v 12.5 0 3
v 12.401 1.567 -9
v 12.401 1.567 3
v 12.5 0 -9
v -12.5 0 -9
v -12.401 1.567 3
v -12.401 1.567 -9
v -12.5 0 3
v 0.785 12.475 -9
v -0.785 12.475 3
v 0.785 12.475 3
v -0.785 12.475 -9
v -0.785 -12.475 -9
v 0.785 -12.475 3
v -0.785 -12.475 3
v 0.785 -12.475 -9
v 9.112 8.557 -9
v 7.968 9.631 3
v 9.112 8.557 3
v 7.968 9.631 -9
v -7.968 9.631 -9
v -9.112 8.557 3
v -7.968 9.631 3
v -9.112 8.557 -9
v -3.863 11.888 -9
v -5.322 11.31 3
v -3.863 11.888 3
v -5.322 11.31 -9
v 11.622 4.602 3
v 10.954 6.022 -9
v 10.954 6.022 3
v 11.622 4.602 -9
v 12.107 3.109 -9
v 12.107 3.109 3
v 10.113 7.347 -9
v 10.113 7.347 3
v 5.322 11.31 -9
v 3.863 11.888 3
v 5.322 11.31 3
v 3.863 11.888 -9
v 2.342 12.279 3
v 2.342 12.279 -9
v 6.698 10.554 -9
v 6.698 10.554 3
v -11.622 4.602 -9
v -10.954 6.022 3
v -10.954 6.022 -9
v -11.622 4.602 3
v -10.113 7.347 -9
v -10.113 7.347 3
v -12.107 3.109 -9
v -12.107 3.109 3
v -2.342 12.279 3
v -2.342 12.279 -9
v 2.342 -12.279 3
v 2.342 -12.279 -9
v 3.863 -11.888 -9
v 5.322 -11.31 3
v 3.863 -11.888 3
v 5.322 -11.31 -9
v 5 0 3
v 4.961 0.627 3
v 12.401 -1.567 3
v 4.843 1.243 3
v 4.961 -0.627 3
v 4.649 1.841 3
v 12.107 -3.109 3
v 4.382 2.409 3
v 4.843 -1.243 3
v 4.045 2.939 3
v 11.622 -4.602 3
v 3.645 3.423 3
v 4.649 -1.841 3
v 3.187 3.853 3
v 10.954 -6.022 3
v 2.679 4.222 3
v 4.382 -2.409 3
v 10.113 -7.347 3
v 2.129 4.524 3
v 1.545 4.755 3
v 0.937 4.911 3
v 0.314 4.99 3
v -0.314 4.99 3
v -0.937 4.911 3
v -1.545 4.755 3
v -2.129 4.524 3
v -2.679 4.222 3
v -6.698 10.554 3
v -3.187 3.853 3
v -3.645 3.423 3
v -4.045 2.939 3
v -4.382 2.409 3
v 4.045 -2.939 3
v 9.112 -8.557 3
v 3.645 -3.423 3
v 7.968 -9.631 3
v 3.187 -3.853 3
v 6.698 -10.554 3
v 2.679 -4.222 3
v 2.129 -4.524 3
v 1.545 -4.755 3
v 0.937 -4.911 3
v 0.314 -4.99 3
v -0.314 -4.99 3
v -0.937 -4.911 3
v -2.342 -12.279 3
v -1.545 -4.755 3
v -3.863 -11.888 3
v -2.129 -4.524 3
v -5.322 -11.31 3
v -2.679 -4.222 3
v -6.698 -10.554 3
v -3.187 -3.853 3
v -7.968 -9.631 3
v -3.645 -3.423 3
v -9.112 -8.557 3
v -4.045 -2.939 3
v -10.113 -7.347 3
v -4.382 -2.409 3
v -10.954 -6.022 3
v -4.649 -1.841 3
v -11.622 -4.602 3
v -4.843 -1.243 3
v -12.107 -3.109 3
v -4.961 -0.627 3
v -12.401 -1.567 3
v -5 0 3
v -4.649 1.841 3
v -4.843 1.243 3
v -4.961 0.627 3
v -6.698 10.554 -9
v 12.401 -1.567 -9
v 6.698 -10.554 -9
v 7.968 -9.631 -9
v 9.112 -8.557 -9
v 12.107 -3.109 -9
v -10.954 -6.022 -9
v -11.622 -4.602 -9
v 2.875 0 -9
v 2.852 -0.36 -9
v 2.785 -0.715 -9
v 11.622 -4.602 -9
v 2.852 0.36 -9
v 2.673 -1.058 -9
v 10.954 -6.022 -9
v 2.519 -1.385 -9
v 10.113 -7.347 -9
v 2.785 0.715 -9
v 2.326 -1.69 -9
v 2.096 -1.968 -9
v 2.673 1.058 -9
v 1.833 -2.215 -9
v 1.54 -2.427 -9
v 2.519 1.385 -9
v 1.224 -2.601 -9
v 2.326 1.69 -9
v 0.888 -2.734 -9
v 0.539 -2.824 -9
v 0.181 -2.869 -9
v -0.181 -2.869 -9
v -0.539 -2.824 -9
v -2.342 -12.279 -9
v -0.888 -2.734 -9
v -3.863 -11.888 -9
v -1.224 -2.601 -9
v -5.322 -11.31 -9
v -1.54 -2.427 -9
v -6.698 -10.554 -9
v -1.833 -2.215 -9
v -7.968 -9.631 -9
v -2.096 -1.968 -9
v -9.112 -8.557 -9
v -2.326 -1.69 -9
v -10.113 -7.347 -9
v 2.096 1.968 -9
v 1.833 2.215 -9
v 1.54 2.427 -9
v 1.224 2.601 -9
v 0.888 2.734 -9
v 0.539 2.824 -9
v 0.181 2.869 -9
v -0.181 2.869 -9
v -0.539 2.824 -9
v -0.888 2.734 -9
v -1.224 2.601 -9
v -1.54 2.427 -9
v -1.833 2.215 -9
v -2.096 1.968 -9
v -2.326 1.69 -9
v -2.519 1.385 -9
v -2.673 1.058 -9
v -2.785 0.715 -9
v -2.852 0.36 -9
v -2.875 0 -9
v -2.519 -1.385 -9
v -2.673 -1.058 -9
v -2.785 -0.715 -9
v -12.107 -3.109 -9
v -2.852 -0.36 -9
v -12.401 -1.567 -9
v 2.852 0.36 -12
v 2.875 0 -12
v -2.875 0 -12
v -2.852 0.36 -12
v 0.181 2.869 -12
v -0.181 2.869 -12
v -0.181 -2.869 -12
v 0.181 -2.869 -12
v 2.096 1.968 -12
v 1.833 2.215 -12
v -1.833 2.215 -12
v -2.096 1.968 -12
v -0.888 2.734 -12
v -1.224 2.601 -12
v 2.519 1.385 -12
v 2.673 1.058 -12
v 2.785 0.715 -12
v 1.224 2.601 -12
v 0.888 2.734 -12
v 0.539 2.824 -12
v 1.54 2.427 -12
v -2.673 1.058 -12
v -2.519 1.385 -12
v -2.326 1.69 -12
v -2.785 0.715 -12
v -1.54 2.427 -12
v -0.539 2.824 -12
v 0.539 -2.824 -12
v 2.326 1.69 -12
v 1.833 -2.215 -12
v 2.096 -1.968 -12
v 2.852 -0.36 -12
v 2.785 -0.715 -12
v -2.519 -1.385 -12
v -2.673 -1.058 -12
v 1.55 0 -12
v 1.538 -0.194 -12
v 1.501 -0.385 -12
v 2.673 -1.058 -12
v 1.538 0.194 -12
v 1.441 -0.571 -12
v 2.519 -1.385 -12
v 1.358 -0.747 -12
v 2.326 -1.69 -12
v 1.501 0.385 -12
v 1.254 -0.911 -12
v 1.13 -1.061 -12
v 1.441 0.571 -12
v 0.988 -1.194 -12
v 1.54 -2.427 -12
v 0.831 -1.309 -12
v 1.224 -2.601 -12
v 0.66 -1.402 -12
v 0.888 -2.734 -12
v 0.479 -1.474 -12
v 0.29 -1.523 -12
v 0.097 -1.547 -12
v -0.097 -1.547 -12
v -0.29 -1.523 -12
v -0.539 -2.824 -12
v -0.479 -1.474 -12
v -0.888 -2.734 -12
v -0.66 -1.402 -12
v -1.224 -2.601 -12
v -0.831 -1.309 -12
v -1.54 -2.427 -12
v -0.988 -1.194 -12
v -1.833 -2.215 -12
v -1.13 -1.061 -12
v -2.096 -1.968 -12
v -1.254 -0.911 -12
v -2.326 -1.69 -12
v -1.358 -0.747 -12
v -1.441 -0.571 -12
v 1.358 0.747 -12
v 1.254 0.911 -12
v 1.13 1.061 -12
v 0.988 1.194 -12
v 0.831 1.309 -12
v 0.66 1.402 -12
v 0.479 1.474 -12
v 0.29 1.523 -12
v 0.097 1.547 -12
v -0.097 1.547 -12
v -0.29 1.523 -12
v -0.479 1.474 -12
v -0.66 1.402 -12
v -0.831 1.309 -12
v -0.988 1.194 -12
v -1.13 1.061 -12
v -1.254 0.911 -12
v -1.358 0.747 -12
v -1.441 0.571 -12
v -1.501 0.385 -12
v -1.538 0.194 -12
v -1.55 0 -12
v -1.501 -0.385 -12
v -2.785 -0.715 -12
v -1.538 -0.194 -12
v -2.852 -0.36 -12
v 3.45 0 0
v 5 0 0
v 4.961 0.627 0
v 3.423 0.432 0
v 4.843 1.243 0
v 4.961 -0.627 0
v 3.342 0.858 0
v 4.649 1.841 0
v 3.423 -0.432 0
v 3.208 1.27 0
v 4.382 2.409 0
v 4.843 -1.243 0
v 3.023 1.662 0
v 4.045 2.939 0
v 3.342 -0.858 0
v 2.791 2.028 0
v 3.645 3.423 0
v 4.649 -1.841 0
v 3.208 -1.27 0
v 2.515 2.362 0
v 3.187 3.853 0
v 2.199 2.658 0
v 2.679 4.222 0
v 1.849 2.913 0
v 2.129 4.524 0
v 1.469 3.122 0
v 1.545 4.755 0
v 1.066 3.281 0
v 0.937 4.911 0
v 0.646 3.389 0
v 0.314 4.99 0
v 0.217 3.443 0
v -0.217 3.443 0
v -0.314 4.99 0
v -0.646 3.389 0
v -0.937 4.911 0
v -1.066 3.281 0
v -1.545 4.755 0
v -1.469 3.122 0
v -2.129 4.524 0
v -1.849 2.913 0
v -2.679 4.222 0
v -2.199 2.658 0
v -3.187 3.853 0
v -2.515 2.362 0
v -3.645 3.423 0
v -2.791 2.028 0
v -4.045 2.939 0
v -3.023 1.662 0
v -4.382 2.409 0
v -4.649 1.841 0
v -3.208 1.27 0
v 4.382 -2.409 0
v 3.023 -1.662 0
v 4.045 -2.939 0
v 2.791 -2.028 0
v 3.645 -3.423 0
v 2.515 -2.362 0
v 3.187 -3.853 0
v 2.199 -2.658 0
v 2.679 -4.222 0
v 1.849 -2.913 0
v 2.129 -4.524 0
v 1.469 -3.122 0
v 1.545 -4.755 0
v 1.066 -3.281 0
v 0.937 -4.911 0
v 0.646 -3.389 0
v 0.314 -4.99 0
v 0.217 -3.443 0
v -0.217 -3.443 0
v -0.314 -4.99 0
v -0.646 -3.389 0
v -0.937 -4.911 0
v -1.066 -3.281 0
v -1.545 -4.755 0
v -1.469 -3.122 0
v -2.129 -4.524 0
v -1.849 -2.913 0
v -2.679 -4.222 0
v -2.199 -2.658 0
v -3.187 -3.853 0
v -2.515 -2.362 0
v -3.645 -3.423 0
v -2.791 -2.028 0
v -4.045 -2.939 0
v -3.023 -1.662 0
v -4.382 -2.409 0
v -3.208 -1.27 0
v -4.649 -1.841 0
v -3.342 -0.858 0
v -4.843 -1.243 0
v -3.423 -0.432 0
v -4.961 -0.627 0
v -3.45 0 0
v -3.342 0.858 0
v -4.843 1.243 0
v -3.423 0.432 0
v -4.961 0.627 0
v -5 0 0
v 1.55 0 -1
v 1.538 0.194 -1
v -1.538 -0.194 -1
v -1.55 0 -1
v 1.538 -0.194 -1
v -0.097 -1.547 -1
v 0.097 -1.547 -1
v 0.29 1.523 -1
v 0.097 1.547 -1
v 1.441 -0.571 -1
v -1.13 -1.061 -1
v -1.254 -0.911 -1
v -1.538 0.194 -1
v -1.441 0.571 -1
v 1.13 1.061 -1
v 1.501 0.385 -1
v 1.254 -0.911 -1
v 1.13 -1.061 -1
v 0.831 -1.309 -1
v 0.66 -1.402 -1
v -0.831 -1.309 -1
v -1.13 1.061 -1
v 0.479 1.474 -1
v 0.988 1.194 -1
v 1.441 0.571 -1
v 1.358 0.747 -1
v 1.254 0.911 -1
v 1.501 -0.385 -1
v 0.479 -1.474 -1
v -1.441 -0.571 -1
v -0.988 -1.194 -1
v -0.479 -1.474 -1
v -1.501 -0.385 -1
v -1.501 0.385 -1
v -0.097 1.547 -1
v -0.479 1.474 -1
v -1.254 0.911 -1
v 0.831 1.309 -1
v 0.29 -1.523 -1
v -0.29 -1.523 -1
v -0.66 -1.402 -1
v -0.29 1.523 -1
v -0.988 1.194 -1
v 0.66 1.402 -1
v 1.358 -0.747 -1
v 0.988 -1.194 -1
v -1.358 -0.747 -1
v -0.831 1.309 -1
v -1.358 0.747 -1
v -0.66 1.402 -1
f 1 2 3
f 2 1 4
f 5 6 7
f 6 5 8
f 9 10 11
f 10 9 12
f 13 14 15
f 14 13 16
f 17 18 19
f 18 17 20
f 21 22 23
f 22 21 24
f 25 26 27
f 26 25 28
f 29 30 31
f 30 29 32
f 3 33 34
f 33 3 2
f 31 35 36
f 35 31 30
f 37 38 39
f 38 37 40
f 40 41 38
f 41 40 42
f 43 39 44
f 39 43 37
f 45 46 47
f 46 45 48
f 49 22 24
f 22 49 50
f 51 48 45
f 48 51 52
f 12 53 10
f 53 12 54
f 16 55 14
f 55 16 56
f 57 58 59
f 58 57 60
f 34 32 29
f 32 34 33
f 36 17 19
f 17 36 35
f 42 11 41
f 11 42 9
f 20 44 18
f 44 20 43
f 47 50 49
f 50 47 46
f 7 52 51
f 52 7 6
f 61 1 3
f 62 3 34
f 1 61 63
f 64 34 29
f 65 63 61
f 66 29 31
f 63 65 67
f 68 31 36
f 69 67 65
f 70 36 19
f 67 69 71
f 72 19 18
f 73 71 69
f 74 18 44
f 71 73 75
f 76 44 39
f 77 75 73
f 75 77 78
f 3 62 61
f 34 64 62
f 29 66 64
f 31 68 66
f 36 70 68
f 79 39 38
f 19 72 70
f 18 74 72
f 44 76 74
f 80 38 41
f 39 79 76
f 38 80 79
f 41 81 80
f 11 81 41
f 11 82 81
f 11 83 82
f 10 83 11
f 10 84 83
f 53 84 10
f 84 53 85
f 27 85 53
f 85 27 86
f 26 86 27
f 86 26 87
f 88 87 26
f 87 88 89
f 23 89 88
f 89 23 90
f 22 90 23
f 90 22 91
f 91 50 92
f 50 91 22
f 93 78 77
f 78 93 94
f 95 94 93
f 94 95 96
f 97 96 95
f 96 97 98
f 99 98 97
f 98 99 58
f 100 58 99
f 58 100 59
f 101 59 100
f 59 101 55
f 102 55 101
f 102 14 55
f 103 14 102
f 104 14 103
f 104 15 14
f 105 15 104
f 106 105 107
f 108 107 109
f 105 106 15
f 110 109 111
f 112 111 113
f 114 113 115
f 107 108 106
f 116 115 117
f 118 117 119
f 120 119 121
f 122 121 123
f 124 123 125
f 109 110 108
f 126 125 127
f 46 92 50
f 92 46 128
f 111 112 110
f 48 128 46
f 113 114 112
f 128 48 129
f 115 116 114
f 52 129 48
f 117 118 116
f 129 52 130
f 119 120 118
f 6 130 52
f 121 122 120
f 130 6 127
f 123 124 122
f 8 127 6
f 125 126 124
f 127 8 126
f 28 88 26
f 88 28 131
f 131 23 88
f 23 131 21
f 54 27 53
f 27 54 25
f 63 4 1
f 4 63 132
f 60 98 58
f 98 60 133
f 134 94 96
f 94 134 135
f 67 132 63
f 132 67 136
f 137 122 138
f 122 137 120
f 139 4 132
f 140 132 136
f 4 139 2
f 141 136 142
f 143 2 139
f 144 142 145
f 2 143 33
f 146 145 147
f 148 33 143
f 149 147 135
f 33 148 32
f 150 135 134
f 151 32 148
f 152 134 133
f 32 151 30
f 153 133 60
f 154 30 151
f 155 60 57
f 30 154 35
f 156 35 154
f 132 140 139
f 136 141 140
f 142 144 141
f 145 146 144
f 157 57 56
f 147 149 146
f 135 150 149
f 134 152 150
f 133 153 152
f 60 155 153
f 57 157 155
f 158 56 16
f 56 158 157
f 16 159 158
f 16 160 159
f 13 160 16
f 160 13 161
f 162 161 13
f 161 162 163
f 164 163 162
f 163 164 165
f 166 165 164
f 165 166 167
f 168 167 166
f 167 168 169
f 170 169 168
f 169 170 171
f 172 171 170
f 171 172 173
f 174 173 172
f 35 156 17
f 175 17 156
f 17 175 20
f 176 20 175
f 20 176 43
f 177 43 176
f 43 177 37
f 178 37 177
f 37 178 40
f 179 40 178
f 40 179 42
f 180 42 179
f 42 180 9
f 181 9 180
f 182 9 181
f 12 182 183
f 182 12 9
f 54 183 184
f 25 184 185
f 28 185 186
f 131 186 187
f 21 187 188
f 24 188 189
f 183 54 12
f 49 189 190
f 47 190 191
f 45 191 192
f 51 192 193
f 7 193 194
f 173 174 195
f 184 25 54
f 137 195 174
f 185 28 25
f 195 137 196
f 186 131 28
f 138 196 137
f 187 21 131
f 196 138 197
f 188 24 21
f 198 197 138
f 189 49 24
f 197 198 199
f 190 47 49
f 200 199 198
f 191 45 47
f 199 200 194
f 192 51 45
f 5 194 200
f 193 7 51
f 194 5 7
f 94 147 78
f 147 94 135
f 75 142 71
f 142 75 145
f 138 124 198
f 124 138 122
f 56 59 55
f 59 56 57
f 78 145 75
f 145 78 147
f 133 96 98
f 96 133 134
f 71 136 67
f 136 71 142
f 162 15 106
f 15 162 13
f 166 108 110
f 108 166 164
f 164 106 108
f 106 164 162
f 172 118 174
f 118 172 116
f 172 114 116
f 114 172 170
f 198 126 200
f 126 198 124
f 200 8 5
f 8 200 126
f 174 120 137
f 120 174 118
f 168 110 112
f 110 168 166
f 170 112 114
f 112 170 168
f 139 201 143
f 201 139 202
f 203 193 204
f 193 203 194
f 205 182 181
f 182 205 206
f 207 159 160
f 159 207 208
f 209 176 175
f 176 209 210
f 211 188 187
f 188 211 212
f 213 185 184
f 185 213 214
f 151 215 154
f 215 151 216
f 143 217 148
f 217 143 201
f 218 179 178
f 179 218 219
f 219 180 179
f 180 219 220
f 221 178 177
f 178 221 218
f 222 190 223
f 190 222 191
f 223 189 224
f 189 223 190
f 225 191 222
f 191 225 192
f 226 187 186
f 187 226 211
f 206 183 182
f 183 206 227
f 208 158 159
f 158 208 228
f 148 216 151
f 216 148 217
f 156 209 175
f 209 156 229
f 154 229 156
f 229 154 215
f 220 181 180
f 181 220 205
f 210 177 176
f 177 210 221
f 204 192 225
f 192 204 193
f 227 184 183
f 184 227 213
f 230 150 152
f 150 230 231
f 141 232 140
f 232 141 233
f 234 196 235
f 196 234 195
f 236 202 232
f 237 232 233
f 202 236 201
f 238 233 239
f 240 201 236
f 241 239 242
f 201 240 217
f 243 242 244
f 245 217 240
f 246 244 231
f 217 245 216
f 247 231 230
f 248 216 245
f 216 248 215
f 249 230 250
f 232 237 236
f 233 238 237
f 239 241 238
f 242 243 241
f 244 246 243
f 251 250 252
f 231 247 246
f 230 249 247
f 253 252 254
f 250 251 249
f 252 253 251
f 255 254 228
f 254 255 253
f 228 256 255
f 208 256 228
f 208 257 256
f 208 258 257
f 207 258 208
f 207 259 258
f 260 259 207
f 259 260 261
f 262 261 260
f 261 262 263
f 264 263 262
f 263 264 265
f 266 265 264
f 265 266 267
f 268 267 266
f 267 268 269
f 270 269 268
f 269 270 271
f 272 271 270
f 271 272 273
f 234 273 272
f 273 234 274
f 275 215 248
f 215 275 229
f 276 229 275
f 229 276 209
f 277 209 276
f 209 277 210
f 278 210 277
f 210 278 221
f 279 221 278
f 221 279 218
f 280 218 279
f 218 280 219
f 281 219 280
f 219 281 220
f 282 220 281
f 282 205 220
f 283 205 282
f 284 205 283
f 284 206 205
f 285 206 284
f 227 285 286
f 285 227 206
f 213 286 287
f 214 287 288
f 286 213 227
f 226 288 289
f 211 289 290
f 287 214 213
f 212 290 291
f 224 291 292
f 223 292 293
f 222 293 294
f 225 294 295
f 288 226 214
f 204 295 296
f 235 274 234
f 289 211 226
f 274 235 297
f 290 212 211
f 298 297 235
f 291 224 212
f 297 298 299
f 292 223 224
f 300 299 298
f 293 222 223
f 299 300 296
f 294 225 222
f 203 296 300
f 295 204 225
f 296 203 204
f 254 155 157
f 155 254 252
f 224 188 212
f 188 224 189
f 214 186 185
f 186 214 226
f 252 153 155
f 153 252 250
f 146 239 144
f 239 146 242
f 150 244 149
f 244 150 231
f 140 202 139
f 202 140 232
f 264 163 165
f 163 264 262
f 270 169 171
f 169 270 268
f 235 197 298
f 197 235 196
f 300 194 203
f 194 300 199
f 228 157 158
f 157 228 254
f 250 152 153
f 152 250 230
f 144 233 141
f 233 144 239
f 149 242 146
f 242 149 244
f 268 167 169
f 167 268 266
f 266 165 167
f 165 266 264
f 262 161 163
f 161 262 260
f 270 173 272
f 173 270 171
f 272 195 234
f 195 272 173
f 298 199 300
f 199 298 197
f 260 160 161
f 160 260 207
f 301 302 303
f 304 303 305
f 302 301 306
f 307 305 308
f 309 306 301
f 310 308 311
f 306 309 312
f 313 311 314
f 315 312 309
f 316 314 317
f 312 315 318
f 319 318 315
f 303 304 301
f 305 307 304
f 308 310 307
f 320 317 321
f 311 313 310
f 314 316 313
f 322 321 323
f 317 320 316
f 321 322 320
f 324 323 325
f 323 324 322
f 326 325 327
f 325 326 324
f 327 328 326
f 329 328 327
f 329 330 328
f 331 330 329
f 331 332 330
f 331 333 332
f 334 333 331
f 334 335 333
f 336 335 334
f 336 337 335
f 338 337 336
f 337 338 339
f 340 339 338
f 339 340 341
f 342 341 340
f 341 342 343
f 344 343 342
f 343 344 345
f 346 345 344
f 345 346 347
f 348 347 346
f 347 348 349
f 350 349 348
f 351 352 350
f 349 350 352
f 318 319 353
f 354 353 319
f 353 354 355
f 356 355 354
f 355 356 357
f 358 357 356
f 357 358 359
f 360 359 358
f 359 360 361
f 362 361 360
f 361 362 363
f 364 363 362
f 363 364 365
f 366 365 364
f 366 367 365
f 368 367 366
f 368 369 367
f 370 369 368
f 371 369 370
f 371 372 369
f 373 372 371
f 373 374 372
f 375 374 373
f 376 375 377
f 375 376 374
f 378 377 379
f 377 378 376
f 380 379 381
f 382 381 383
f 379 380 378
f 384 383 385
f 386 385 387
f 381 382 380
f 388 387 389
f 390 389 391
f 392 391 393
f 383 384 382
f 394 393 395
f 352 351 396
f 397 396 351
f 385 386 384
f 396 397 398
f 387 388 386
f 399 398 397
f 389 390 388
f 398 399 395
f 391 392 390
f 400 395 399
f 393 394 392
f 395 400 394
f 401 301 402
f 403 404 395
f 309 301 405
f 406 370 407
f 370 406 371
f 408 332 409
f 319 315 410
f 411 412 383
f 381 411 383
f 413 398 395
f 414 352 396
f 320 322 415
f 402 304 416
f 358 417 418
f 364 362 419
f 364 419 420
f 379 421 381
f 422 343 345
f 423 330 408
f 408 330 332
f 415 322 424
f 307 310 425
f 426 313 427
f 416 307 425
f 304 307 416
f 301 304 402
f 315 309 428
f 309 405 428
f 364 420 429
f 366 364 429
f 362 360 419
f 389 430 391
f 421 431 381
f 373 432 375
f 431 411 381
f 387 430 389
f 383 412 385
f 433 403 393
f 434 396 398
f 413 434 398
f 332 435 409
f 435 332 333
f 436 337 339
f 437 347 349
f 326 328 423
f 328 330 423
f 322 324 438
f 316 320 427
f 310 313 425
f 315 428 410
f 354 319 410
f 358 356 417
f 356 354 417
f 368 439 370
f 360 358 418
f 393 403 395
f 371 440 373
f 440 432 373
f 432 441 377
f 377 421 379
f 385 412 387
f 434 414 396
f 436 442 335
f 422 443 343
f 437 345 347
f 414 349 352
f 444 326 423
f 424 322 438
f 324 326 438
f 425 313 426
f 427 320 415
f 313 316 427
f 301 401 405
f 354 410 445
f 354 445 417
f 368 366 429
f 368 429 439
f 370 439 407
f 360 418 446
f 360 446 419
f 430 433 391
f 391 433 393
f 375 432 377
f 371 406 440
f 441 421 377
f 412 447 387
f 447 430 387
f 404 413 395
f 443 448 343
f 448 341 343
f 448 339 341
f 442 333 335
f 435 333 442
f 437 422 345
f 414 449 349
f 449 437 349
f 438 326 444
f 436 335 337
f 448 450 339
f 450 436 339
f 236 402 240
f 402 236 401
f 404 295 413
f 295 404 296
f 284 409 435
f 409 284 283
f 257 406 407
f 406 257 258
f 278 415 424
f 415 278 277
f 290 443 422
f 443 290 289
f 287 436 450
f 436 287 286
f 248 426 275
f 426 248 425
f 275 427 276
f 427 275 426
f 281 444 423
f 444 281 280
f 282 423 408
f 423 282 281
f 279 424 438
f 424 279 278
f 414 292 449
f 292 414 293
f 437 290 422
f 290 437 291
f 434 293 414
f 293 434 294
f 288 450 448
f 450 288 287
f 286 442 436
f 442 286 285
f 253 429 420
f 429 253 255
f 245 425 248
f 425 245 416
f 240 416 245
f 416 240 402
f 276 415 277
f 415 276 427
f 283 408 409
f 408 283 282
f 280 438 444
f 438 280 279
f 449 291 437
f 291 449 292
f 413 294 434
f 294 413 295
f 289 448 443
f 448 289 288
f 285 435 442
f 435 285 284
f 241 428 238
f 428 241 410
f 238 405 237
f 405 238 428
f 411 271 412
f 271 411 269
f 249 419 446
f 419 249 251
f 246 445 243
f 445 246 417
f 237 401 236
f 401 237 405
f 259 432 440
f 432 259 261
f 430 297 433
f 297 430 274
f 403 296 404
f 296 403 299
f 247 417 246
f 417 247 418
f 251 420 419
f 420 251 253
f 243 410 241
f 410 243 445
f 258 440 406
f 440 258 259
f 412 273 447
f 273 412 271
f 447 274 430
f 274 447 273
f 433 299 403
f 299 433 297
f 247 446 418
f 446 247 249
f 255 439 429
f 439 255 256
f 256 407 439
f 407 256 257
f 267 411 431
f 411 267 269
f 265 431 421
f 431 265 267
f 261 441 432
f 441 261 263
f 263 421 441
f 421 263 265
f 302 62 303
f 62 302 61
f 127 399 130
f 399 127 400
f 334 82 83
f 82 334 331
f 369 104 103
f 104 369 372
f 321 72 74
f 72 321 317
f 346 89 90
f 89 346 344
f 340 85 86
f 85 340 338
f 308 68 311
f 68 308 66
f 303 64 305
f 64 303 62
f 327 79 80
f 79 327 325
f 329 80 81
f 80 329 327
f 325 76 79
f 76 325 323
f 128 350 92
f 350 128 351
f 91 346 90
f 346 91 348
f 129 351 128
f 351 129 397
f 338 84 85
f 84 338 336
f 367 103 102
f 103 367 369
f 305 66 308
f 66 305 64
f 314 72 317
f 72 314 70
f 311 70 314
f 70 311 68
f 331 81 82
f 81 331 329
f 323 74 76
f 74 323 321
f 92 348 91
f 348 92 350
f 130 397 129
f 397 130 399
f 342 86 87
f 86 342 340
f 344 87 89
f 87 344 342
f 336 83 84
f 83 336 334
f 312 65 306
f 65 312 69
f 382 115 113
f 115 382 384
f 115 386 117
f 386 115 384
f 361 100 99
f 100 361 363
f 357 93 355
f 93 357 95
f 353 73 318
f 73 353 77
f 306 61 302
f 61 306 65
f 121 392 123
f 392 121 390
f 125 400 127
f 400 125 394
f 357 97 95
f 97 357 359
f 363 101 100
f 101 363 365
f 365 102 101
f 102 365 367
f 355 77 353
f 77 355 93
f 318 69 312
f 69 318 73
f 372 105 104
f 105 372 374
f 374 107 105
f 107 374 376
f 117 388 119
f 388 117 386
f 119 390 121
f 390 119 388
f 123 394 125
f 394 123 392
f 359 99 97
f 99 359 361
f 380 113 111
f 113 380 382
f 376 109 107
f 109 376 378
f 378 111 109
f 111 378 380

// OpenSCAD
$fn = 50;

difference() {
	union() {
		translate(v = [0, 0, -9.0]) {
			cylinder(h = 12, r = 12.5);
		}
		#translate(v = [0, 0, -12.0]) {
			cylinder(h = 12, r = 2.875);
		}
	}
	union() {
		translate(v = [0, 0, 0]) {
			rotate(a = [0, 0, 0]) {
				difference() {
					union() {
						translate(v = [0, 0, -12.0]) {
							cylinder(h = 12, r = 1.25);
						}
						translate(v = [0, 0, -1.0]) {
							cylinder(h = 1.0, r1 = 1.55, r2 = 3.45);
						}
						translate(v = [0, 0, -12.0]) {
							cylinder(h = 12, r = 1.55);
						}
						translate(v = [0, 0, -12.0]) {
							cylinder(h = 12, r = 1.25);
						}
					}
					union();
				}
			}
		}
		#cylinder(h = 3, r = 5.0);
	}
}
